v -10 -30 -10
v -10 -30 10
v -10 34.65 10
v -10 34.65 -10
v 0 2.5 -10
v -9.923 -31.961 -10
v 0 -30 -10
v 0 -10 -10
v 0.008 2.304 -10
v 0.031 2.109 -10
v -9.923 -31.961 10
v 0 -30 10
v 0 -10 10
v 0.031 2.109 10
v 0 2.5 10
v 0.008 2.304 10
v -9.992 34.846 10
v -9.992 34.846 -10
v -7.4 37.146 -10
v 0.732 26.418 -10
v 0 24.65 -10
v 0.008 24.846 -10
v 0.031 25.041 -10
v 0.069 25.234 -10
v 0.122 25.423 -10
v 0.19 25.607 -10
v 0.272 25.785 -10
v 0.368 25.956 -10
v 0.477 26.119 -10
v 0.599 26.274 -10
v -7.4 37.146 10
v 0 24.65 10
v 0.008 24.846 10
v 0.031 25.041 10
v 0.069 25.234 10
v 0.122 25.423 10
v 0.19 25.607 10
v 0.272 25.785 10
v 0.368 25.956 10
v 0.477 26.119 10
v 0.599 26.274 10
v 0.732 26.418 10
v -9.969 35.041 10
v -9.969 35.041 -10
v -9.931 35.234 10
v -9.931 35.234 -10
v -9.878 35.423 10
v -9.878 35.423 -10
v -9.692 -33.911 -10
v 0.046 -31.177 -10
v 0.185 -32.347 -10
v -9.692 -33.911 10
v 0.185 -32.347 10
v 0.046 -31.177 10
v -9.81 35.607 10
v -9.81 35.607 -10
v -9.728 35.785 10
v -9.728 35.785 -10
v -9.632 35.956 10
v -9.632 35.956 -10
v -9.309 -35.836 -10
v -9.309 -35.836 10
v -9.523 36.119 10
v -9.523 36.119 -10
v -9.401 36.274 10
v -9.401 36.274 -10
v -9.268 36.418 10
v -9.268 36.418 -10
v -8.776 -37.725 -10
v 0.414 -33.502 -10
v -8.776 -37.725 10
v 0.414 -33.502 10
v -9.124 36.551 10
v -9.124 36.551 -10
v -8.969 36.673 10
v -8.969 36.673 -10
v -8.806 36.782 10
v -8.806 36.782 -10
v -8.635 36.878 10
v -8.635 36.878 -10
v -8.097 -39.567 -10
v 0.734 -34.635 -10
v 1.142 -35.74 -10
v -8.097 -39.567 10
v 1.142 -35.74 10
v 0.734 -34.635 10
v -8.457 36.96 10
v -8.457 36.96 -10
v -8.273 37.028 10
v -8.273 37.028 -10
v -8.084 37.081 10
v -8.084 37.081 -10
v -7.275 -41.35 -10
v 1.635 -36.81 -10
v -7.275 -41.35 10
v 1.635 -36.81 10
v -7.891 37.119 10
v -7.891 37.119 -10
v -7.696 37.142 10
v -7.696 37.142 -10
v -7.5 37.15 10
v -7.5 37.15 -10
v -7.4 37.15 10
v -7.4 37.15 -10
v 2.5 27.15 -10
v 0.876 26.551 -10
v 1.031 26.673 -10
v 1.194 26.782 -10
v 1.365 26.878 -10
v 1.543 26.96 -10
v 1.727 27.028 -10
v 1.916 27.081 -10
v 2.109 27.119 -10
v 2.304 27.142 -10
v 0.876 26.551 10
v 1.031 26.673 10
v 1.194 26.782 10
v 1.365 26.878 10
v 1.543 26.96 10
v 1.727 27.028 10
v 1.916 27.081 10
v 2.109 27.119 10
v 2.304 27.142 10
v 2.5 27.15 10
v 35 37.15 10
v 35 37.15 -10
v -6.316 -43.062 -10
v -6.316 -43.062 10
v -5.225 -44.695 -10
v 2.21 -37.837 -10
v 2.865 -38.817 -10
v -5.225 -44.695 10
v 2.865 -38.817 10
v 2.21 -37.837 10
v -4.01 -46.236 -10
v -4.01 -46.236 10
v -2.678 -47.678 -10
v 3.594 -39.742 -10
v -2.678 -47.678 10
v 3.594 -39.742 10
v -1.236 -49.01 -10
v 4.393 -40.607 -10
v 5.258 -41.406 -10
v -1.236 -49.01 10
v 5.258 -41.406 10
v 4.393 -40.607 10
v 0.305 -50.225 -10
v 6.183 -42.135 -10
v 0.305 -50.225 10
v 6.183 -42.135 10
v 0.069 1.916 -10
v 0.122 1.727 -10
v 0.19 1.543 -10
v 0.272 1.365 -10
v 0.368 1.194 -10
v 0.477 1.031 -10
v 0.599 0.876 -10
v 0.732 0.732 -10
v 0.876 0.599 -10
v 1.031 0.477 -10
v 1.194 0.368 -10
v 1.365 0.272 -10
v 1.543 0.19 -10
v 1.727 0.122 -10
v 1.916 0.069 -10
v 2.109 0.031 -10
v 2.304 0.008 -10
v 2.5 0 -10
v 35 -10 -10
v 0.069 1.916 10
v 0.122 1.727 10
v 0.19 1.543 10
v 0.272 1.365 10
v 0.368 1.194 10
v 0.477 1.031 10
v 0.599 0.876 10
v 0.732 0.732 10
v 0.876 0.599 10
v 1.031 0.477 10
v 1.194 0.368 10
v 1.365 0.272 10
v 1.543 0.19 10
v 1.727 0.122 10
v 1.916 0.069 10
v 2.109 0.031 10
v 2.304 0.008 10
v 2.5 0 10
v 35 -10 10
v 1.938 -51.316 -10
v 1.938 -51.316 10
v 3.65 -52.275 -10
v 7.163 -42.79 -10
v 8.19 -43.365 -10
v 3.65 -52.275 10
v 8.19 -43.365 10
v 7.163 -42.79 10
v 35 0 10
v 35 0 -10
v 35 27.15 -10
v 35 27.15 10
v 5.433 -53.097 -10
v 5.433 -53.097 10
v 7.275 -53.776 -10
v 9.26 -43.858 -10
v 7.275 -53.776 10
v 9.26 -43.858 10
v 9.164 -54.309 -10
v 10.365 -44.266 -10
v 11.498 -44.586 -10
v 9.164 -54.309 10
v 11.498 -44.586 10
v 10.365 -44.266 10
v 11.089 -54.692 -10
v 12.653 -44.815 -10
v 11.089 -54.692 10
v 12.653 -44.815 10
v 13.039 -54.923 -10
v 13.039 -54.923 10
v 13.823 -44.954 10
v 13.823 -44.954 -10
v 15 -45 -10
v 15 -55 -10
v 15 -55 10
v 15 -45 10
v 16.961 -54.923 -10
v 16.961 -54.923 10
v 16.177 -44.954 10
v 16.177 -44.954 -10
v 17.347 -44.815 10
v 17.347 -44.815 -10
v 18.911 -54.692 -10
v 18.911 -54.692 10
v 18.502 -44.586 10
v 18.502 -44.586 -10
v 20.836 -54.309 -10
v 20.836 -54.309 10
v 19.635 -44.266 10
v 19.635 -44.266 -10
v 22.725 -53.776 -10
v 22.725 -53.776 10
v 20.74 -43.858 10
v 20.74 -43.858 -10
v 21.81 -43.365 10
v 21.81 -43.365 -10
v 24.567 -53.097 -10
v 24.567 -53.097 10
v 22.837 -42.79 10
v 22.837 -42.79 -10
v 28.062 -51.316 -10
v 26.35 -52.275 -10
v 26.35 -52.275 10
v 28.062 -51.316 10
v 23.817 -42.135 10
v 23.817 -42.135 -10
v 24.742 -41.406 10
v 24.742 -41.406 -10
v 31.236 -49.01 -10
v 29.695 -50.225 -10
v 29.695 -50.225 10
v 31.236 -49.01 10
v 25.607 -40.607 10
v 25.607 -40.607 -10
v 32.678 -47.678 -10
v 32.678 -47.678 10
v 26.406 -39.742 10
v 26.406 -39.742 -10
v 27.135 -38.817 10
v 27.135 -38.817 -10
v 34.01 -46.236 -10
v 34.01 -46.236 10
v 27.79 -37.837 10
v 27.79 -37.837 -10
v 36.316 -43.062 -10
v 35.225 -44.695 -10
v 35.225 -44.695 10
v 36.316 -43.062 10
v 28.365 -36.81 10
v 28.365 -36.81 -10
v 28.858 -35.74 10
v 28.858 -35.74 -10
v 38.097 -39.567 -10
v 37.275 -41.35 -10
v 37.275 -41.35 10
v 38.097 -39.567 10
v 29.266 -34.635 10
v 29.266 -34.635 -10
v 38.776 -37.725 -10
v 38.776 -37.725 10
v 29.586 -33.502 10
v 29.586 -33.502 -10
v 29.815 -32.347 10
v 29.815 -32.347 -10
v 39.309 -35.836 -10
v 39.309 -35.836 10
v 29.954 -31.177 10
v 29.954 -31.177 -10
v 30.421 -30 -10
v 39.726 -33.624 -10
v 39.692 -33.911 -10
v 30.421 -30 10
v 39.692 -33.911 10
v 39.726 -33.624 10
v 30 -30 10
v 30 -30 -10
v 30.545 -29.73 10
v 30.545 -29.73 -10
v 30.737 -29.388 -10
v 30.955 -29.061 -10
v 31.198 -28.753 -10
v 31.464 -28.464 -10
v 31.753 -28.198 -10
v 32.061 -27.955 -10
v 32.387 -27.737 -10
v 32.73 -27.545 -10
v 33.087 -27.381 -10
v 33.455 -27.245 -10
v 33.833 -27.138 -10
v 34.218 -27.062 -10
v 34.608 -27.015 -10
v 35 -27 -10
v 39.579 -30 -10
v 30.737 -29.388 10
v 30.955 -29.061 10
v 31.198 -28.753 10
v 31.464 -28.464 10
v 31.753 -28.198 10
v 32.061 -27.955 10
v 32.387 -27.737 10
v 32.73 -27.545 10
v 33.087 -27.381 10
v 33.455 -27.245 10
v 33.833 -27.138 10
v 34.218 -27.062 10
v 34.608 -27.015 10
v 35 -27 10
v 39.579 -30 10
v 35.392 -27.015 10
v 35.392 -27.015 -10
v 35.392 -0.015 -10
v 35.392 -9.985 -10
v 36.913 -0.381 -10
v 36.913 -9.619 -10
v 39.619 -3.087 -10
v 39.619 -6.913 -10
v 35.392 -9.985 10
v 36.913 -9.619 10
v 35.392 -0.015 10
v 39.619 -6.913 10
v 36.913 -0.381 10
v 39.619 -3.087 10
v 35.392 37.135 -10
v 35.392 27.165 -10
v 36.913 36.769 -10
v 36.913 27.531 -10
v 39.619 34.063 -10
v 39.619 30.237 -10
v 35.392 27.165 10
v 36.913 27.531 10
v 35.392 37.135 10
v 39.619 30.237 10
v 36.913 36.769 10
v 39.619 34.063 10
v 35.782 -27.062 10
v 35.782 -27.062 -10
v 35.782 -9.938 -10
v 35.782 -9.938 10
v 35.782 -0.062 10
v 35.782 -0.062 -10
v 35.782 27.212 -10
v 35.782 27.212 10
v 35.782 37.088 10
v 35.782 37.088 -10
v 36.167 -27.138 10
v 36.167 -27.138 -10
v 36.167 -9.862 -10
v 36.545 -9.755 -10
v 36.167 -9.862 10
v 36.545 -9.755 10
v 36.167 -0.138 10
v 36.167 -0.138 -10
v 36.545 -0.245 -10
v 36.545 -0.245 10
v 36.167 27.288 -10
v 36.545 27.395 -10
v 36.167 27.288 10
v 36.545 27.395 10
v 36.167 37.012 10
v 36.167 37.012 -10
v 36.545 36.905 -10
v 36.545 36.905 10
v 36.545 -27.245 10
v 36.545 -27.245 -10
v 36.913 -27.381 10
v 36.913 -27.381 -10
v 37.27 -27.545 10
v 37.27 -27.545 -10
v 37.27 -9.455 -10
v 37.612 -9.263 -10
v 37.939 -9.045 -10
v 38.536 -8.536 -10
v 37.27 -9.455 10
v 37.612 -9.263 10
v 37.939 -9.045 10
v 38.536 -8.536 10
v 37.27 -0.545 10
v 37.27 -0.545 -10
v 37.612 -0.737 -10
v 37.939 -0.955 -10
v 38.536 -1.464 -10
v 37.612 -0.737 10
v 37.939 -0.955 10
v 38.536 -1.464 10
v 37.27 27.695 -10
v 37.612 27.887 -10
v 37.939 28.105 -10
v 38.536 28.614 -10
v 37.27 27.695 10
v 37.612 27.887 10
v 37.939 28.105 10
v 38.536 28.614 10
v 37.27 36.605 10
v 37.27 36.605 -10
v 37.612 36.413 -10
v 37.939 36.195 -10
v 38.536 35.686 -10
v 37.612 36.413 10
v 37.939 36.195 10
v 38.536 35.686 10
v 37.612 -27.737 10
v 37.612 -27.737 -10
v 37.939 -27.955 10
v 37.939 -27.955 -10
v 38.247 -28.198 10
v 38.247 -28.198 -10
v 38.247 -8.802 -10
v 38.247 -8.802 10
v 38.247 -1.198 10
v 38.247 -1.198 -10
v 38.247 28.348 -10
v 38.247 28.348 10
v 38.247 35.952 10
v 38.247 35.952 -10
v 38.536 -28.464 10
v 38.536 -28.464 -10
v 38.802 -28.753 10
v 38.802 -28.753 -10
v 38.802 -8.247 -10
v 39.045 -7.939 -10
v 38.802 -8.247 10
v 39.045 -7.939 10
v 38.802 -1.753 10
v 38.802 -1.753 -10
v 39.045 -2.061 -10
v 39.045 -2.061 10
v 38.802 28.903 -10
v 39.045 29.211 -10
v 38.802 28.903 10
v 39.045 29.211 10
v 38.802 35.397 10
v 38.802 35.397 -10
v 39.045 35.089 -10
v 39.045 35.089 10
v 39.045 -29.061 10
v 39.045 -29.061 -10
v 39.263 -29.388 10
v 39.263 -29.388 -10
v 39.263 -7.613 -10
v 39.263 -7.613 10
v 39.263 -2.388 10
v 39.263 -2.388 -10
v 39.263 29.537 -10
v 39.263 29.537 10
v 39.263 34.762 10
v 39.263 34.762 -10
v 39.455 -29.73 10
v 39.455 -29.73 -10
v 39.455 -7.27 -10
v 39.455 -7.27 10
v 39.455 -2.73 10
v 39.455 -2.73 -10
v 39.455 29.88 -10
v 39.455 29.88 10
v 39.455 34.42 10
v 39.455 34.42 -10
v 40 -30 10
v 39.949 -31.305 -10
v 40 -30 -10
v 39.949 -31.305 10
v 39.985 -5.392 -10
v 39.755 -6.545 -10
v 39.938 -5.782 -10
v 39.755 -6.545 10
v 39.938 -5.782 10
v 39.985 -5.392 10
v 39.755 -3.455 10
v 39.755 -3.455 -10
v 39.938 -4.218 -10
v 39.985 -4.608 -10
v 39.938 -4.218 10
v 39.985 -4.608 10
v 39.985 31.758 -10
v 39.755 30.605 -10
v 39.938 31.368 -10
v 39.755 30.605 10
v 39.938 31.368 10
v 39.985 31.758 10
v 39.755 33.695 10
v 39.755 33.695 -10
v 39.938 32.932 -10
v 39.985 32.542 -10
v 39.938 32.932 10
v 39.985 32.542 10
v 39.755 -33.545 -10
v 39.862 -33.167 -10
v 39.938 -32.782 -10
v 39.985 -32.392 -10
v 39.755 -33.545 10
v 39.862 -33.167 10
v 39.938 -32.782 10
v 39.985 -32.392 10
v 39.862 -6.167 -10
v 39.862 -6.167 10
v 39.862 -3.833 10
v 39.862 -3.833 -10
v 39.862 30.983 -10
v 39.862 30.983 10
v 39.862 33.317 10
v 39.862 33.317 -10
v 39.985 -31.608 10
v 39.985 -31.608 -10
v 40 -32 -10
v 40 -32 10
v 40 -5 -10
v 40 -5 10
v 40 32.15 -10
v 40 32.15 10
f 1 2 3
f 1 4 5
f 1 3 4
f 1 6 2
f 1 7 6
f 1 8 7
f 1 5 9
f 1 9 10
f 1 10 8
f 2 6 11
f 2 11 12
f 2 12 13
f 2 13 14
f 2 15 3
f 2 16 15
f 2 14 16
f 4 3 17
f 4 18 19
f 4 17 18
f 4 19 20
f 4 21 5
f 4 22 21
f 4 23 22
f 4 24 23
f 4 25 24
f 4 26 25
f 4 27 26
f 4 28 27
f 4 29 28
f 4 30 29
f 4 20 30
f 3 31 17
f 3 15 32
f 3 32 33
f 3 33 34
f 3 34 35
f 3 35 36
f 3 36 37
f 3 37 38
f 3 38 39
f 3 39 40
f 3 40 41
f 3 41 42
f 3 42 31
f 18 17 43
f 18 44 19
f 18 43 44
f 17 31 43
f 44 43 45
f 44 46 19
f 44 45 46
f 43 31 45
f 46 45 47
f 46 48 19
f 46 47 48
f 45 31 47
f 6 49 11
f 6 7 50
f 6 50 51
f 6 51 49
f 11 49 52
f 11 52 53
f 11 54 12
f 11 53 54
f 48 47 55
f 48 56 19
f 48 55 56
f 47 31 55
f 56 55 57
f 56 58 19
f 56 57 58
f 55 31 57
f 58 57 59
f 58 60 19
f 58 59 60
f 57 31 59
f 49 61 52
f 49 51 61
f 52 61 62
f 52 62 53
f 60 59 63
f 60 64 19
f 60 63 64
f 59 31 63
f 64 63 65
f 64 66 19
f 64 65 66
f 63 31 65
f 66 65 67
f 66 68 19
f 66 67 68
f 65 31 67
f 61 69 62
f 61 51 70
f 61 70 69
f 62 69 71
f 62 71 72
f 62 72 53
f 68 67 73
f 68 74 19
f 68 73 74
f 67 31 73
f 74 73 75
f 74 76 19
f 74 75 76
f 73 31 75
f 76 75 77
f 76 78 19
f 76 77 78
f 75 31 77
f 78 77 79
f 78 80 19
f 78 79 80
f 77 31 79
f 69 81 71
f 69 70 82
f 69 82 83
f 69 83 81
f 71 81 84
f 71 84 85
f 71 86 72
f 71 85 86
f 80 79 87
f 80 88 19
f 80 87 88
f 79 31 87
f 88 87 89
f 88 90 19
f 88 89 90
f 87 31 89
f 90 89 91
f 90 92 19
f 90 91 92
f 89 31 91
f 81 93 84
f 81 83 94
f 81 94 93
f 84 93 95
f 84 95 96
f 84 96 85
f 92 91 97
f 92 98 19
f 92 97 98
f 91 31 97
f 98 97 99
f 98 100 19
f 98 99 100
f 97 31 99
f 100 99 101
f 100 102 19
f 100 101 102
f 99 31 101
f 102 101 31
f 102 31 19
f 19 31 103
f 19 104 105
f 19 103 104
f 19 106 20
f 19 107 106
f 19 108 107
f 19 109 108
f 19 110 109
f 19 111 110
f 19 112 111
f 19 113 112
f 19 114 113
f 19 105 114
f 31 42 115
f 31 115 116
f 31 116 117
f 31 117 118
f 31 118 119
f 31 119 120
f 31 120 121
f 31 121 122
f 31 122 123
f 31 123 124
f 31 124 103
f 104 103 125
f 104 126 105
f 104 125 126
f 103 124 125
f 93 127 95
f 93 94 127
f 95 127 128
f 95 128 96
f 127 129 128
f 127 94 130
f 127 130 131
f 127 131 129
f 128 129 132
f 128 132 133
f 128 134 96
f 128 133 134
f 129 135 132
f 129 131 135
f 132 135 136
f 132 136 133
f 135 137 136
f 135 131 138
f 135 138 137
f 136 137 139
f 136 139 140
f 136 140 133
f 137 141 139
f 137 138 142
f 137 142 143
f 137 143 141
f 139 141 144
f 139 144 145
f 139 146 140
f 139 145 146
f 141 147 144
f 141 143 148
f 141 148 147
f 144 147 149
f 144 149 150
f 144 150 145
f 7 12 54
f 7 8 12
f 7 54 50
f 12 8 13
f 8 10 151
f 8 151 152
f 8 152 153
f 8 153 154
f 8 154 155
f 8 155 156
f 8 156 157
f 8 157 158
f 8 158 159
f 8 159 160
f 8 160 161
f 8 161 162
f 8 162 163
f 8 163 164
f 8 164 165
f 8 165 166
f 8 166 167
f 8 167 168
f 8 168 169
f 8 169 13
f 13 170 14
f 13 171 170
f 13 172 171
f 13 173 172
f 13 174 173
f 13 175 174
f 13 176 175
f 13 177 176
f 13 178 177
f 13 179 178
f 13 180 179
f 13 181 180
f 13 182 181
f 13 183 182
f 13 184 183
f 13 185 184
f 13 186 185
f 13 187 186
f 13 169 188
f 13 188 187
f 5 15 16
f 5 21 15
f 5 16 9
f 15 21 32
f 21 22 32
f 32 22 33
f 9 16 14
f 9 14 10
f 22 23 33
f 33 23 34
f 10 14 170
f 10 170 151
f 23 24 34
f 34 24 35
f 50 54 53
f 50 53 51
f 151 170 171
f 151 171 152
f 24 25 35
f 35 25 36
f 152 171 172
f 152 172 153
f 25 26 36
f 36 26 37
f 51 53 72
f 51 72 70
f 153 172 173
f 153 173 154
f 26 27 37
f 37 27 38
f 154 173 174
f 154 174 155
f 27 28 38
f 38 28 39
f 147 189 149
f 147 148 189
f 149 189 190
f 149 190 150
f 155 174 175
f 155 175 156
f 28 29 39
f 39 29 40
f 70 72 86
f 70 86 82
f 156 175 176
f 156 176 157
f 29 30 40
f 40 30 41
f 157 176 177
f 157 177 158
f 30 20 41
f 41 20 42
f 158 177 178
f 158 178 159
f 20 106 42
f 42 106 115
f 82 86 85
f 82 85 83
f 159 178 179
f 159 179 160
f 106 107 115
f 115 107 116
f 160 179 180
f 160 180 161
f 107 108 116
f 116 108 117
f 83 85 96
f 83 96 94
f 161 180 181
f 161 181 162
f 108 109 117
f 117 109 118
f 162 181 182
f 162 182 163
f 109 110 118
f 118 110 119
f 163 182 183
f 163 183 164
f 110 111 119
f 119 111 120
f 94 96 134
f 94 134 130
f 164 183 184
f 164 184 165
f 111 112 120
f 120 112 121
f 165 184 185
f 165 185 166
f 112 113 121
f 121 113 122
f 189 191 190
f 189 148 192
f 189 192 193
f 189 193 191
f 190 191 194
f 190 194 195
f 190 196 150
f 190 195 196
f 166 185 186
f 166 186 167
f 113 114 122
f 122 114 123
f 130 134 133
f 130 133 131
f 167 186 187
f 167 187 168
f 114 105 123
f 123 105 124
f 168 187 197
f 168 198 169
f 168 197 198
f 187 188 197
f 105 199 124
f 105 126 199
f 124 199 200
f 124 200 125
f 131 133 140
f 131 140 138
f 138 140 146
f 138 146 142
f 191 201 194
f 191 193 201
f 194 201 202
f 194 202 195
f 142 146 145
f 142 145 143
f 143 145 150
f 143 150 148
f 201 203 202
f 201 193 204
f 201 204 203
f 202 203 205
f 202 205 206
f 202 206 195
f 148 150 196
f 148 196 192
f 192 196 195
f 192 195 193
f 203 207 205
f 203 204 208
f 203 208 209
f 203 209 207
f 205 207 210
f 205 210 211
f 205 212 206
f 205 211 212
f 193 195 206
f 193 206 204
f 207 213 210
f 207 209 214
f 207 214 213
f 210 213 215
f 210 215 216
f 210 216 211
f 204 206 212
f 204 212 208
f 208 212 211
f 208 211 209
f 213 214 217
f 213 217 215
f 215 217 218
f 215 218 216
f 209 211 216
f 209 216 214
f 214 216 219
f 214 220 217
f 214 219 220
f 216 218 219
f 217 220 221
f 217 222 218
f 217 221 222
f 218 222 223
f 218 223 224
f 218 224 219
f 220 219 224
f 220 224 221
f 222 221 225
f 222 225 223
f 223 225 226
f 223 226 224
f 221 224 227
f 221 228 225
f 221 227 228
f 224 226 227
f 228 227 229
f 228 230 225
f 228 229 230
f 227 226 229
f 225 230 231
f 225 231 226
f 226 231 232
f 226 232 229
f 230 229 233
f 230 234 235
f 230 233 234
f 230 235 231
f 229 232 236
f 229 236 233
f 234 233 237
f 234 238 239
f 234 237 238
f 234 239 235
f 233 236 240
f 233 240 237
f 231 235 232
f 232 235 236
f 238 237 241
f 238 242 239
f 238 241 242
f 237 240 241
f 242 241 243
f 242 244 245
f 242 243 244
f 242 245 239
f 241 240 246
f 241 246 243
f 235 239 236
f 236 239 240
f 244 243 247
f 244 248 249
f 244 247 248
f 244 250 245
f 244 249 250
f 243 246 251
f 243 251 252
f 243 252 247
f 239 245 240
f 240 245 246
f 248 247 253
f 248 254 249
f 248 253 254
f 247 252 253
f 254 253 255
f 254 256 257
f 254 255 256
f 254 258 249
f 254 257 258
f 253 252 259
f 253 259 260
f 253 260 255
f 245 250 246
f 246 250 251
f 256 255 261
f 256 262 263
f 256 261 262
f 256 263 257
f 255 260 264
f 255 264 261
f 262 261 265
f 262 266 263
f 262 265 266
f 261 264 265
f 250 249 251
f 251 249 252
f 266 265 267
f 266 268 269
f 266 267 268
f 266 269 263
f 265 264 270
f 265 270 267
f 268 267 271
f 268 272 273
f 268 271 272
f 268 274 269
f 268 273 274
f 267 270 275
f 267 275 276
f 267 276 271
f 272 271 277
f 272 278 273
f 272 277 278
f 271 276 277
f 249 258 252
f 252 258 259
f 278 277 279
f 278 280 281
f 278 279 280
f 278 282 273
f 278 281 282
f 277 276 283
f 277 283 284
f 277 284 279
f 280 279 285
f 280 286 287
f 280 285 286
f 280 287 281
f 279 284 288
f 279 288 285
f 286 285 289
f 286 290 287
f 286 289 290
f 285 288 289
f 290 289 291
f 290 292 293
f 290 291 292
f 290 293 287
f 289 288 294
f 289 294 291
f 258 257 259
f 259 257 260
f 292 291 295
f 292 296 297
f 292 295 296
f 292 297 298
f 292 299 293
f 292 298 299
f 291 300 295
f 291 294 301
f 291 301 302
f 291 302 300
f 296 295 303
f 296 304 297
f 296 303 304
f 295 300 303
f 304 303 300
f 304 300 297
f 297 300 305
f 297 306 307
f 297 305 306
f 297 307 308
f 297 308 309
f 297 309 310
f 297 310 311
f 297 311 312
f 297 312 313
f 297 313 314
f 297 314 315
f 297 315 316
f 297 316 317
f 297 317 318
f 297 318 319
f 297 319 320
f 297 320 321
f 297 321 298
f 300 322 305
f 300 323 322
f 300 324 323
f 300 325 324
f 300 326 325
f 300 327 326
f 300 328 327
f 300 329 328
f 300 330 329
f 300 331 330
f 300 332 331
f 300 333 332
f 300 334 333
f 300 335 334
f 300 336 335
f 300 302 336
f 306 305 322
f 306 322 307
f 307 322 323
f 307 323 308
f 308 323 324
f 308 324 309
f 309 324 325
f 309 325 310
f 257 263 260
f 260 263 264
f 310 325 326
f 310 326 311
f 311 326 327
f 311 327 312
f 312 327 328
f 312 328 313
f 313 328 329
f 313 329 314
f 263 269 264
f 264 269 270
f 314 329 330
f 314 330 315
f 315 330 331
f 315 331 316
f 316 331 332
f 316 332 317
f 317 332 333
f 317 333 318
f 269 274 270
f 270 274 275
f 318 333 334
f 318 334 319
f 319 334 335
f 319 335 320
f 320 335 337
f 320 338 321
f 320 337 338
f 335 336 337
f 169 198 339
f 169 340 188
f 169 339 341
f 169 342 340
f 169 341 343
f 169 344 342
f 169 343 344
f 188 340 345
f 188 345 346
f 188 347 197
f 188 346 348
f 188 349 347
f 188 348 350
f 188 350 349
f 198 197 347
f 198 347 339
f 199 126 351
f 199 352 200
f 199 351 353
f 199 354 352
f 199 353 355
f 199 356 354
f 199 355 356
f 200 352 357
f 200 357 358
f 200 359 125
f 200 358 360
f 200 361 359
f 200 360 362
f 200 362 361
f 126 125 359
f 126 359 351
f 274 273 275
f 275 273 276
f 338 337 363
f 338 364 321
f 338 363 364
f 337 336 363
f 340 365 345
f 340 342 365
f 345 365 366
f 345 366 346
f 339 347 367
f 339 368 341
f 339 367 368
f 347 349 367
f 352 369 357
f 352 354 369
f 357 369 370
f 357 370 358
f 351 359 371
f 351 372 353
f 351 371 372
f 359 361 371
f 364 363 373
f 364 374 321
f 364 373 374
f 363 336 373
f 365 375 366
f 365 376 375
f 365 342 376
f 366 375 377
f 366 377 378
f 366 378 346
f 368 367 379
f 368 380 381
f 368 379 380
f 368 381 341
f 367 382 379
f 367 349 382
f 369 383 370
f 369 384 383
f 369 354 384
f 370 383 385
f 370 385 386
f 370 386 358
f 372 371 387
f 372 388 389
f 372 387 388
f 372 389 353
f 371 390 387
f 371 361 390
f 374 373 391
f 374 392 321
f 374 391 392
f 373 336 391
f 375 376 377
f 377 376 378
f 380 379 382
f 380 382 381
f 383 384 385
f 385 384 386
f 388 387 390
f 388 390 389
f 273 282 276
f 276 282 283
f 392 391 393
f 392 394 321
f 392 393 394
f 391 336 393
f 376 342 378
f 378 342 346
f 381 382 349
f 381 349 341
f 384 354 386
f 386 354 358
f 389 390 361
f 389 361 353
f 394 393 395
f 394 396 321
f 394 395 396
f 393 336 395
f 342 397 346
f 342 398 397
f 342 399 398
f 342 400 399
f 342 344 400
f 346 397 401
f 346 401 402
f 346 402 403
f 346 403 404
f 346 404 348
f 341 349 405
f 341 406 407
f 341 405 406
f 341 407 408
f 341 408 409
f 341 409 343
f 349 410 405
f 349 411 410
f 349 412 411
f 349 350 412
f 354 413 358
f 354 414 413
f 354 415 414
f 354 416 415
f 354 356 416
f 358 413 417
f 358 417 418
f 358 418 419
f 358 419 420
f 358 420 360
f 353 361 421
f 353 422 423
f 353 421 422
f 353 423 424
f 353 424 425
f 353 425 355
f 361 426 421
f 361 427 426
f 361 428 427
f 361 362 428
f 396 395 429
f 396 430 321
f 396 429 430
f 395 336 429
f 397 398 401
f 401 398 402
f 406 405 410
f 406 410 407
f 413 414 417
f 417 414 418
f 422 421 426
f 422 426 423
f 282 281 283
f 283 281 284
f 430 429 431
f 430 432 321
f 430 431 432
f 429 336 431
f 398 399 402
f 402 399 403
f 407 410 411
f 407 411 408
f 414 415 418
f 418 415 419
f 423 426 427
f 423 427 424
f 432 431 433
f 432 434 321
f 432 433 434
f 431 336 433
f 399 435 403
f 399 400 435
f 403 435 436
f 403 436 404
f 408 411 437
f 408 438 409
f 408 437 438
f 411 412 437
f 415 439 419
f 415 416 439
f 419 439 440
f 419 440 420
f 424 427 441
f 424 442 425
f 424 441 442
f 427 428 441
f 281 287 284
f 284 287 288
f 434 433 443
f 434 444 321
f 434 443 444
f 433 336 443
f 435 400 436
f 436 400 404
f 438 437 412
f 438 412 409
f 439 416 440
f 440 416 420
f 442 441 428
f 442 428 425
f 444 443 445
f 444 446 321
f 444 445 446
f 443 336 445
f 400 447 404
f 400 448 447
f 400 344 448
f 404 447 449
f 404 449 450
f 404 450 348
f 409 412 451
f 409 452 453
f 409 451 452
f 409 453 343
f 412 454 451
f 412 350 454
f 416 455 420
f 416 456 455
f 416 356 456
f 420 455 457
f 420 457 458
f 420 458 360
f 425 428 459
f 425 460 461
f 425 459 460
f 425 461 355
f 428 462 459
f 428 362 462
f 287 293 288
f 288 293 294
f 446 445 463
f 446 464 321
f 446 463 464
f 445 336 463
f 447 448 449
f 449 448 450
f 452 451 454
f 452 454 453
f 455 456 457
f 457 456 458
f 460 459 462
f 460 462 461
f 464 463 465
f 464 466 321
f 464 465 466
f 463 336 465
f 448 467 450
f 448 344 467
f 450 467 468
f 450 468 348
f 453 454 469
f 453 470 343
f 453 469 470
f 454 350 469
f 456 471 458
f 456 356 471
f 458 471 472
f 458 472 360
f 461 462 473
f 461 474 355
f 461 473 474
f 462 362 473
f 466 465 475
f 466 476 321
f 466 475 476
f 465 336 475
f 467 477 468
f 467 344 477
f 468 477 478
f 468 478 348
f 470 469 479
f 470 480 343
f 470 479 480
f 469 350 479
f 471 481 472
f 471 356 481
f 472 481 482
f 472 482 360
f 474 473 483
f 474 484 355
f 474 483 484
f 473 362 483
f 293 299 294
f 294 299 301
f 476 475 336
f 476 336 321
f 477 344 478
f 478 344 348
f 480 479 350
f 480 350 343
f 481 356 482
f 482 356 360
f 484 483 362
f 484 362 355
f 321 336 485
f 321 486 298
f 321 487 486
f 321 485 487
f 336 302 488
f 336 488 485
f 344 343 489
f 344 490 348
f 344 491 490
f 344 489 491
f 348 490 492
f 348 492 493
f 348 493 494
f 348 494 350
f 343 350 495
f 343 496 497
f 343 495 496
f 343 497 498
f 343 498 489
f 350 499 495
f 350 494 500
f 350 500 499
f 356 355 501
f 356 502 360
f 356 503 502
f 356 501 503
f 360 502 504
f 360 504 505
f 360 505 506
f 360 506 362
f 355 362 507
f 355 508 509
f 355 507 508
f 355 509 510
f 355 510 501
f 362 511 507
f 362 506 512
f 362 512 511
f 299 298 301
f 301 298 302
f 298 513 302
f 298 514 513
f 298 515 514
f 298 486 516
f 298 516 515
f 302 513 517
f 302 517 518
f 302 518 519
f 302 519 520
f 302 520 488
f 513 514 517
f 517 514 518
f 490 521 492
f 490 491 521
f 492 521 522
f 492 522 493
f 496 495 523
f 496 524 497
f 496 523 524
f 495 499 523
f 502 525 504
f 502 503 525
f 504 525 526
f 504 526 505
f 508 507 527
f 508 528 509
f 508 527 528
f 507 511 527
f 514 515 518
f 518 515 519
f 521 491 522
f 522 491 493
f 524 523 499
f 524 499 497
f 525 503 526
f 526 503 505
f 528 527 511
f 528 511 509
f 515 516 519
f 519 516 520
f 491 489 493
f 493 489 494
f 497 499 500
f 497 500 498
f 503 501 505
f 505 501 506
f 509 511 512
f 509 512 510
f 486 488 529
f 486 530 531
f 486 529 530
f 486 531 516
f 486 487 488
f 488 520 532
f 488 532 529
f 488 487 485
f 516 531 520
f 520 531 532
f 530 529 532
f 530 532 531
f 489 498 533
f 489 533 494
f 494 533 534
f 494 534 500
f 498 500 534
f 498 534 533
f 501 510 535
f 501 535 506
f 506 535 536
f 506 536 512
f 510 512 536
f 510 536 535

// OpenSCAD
/*
================================================================================
   Parameterizable Desk Schoolbag Hook (E-Shape Clamp with Curved Hook)
   Designed by Antigravity
   
   This model is fully parametric and optimized for 3D printing.
   It features rounded tips, structural reinforcement fillets, and is
   designed to print flat on its side for maximum tensile strength.
================================================================================
*/

/* [Desk Clamp Parameters] */
// Thickness of your desk/table (in mm).
desk_thickness = 27.15; // [5:1:50]

// How deep the clamp slides onto the desk surface (in mm).
clamp_depth = 40; // [20:1:80]

// The thickness of the hook structure (in mm). Controls overall strength.
material_thickness = 10; // [4:0.5:15]

// Width of the hook (in mm). The extrusion depth.
hook_width = 20; // [10:1:100]

/* [Hook Parameters] */
// Inner radius of the curved hook (in mm). Larger = fits wider straps.
hook_radius = 15; // [10:1:40]

// Vertical clearance gap between the clamp bottom and the hook top (in mm).
hook_gap = 20; // [10:1:60]

// Height of the front tip of the hook (in mm) to prevent the bag from slipping off.
hook_tip_height = 3; // [5:1:30]

/* [Strength & Aesthetics] */
// Radius of the inner fillets to reduce stress concentration (in mm).
fillet_radius = 2.5; // [0:0.5:5]

// Smoothness factor for circles and arcs (higher = smoother, slower render)
$fn = 80; // [30:5:150]


// =============================================================================
// HELPER MODULES
// =============================================================================

// Horizontal arm with a rounded end to prevent scratching and look premium
module rounded_horizontal_arm(length, thickness) {
    union() {
        square([length - thickness/2, thickness]);
        translate([length - thickness/2, thickness/2])
            circle(d = thickness);
    }
}

// Vertical arm with a rounded end
module rounded_vertical_arm(height, thickness) {
    union() {
        square([thickness, height - thickness/2]);
        translate([thickness/2, height - thickness/2])
            circle(d = thickness);
    }
}

// A standard 2D fillet to reinforce inner 90-degree corners
module corner_fillet(r) {
    if (r > 0) {
        difference() {
            square([r, r]);
            translate([r, r]) circle(r = r);
        }
    }
}

// =============================================================================
// 2D PROFILE GENERATION
// =============================================================================

module hook_2d_profile() {
    T = material_thickness;
    H = desk_thickness;
    L = clamp_depth;
    R = hook_radius;
    G = hook_gap;
    Tip = hook_tip_height;
    Rf = fillet_radius;
    Ro = Rf; // Use the fillet radius for outer corner rounding as well

    // y-coordinate of the hook's top surface
    y_hook_top = -T - G;

    difference() {
        union() {
            // 1. Top Clamp Arm (rests on top of the desk)
            translate([0, H]) 
                rounded_horizontal_arm(L, T);
            
            // 2. Middle Clamp Arm (clamps under the desk)
            translate([0, -T]) 
                rounded_horizontal_arm(L, T);
            
            // 3. Vertical Spine (connects top clamp, middle clamp, and hook)
            // Spans from the top of the top arm (H + T) down to the hook top (y_hook_top)
            translate([-T, y_hook_top]) 
                square([T, H + 2*T + G]);
            
            // 4. The Curved Hook (Semi-circle)
            // Centered at (R, y_hook_top) so the outer boundary aligns with the spine at x = -T
            translate([R, y_hook_top]) {
                difference() {
                    circle(r = R + T);
                    circle(r = R);
                    // Keep only the bottom half (y <= 0 in local space)
                    translate([-(R + T), 0]) 
                        square([2 * (R + T), R + T]);
                }
            }
            
            // 5. Hook Tip (vertical security block)
            translate([2*R, y_hook_top]) 
                rounded_vertical_arm(Tip, T);
                
            // 6. Structural Fillets (Reinforcements for strength under load)
            if (Rf > 0) {
                // Upper clamp inner corner fillet (smooth transition from spine to top arm)
                translate([0, H - Rf])
                    difference() {
                        square([Rf, Rf]);
                        translate([Rf, 0]) circle(r = Rf);
                    }
                
                // Lower clamp inner corner fillet (smooth transition from spine to middle arm)
                translate([0, 0])
                    corner_fillet(Rf);
            }
        }
        
        // 7. Outer Top-Left Corner Rounding (avoids sharp edges on the outside)
        if (Ro > 0) {
            translate([-T, H + T - Ro])
                difference() {
                    square([Ro + 0.1, Ro + 0.1]);
                    translate([Ro, 0]) circle(r = Ro);
                }
        }
    }
}

// =============================================================================
// 3D MODEL ASSEMBLY
// =============================================================================

// Extrude the 2D profile to the specified width and apply a premium color
color("#2B5C8F") // Elegant deep slate blue
    linear_extrude(height = hook_width, center = true)
        hook_2d_profile();
